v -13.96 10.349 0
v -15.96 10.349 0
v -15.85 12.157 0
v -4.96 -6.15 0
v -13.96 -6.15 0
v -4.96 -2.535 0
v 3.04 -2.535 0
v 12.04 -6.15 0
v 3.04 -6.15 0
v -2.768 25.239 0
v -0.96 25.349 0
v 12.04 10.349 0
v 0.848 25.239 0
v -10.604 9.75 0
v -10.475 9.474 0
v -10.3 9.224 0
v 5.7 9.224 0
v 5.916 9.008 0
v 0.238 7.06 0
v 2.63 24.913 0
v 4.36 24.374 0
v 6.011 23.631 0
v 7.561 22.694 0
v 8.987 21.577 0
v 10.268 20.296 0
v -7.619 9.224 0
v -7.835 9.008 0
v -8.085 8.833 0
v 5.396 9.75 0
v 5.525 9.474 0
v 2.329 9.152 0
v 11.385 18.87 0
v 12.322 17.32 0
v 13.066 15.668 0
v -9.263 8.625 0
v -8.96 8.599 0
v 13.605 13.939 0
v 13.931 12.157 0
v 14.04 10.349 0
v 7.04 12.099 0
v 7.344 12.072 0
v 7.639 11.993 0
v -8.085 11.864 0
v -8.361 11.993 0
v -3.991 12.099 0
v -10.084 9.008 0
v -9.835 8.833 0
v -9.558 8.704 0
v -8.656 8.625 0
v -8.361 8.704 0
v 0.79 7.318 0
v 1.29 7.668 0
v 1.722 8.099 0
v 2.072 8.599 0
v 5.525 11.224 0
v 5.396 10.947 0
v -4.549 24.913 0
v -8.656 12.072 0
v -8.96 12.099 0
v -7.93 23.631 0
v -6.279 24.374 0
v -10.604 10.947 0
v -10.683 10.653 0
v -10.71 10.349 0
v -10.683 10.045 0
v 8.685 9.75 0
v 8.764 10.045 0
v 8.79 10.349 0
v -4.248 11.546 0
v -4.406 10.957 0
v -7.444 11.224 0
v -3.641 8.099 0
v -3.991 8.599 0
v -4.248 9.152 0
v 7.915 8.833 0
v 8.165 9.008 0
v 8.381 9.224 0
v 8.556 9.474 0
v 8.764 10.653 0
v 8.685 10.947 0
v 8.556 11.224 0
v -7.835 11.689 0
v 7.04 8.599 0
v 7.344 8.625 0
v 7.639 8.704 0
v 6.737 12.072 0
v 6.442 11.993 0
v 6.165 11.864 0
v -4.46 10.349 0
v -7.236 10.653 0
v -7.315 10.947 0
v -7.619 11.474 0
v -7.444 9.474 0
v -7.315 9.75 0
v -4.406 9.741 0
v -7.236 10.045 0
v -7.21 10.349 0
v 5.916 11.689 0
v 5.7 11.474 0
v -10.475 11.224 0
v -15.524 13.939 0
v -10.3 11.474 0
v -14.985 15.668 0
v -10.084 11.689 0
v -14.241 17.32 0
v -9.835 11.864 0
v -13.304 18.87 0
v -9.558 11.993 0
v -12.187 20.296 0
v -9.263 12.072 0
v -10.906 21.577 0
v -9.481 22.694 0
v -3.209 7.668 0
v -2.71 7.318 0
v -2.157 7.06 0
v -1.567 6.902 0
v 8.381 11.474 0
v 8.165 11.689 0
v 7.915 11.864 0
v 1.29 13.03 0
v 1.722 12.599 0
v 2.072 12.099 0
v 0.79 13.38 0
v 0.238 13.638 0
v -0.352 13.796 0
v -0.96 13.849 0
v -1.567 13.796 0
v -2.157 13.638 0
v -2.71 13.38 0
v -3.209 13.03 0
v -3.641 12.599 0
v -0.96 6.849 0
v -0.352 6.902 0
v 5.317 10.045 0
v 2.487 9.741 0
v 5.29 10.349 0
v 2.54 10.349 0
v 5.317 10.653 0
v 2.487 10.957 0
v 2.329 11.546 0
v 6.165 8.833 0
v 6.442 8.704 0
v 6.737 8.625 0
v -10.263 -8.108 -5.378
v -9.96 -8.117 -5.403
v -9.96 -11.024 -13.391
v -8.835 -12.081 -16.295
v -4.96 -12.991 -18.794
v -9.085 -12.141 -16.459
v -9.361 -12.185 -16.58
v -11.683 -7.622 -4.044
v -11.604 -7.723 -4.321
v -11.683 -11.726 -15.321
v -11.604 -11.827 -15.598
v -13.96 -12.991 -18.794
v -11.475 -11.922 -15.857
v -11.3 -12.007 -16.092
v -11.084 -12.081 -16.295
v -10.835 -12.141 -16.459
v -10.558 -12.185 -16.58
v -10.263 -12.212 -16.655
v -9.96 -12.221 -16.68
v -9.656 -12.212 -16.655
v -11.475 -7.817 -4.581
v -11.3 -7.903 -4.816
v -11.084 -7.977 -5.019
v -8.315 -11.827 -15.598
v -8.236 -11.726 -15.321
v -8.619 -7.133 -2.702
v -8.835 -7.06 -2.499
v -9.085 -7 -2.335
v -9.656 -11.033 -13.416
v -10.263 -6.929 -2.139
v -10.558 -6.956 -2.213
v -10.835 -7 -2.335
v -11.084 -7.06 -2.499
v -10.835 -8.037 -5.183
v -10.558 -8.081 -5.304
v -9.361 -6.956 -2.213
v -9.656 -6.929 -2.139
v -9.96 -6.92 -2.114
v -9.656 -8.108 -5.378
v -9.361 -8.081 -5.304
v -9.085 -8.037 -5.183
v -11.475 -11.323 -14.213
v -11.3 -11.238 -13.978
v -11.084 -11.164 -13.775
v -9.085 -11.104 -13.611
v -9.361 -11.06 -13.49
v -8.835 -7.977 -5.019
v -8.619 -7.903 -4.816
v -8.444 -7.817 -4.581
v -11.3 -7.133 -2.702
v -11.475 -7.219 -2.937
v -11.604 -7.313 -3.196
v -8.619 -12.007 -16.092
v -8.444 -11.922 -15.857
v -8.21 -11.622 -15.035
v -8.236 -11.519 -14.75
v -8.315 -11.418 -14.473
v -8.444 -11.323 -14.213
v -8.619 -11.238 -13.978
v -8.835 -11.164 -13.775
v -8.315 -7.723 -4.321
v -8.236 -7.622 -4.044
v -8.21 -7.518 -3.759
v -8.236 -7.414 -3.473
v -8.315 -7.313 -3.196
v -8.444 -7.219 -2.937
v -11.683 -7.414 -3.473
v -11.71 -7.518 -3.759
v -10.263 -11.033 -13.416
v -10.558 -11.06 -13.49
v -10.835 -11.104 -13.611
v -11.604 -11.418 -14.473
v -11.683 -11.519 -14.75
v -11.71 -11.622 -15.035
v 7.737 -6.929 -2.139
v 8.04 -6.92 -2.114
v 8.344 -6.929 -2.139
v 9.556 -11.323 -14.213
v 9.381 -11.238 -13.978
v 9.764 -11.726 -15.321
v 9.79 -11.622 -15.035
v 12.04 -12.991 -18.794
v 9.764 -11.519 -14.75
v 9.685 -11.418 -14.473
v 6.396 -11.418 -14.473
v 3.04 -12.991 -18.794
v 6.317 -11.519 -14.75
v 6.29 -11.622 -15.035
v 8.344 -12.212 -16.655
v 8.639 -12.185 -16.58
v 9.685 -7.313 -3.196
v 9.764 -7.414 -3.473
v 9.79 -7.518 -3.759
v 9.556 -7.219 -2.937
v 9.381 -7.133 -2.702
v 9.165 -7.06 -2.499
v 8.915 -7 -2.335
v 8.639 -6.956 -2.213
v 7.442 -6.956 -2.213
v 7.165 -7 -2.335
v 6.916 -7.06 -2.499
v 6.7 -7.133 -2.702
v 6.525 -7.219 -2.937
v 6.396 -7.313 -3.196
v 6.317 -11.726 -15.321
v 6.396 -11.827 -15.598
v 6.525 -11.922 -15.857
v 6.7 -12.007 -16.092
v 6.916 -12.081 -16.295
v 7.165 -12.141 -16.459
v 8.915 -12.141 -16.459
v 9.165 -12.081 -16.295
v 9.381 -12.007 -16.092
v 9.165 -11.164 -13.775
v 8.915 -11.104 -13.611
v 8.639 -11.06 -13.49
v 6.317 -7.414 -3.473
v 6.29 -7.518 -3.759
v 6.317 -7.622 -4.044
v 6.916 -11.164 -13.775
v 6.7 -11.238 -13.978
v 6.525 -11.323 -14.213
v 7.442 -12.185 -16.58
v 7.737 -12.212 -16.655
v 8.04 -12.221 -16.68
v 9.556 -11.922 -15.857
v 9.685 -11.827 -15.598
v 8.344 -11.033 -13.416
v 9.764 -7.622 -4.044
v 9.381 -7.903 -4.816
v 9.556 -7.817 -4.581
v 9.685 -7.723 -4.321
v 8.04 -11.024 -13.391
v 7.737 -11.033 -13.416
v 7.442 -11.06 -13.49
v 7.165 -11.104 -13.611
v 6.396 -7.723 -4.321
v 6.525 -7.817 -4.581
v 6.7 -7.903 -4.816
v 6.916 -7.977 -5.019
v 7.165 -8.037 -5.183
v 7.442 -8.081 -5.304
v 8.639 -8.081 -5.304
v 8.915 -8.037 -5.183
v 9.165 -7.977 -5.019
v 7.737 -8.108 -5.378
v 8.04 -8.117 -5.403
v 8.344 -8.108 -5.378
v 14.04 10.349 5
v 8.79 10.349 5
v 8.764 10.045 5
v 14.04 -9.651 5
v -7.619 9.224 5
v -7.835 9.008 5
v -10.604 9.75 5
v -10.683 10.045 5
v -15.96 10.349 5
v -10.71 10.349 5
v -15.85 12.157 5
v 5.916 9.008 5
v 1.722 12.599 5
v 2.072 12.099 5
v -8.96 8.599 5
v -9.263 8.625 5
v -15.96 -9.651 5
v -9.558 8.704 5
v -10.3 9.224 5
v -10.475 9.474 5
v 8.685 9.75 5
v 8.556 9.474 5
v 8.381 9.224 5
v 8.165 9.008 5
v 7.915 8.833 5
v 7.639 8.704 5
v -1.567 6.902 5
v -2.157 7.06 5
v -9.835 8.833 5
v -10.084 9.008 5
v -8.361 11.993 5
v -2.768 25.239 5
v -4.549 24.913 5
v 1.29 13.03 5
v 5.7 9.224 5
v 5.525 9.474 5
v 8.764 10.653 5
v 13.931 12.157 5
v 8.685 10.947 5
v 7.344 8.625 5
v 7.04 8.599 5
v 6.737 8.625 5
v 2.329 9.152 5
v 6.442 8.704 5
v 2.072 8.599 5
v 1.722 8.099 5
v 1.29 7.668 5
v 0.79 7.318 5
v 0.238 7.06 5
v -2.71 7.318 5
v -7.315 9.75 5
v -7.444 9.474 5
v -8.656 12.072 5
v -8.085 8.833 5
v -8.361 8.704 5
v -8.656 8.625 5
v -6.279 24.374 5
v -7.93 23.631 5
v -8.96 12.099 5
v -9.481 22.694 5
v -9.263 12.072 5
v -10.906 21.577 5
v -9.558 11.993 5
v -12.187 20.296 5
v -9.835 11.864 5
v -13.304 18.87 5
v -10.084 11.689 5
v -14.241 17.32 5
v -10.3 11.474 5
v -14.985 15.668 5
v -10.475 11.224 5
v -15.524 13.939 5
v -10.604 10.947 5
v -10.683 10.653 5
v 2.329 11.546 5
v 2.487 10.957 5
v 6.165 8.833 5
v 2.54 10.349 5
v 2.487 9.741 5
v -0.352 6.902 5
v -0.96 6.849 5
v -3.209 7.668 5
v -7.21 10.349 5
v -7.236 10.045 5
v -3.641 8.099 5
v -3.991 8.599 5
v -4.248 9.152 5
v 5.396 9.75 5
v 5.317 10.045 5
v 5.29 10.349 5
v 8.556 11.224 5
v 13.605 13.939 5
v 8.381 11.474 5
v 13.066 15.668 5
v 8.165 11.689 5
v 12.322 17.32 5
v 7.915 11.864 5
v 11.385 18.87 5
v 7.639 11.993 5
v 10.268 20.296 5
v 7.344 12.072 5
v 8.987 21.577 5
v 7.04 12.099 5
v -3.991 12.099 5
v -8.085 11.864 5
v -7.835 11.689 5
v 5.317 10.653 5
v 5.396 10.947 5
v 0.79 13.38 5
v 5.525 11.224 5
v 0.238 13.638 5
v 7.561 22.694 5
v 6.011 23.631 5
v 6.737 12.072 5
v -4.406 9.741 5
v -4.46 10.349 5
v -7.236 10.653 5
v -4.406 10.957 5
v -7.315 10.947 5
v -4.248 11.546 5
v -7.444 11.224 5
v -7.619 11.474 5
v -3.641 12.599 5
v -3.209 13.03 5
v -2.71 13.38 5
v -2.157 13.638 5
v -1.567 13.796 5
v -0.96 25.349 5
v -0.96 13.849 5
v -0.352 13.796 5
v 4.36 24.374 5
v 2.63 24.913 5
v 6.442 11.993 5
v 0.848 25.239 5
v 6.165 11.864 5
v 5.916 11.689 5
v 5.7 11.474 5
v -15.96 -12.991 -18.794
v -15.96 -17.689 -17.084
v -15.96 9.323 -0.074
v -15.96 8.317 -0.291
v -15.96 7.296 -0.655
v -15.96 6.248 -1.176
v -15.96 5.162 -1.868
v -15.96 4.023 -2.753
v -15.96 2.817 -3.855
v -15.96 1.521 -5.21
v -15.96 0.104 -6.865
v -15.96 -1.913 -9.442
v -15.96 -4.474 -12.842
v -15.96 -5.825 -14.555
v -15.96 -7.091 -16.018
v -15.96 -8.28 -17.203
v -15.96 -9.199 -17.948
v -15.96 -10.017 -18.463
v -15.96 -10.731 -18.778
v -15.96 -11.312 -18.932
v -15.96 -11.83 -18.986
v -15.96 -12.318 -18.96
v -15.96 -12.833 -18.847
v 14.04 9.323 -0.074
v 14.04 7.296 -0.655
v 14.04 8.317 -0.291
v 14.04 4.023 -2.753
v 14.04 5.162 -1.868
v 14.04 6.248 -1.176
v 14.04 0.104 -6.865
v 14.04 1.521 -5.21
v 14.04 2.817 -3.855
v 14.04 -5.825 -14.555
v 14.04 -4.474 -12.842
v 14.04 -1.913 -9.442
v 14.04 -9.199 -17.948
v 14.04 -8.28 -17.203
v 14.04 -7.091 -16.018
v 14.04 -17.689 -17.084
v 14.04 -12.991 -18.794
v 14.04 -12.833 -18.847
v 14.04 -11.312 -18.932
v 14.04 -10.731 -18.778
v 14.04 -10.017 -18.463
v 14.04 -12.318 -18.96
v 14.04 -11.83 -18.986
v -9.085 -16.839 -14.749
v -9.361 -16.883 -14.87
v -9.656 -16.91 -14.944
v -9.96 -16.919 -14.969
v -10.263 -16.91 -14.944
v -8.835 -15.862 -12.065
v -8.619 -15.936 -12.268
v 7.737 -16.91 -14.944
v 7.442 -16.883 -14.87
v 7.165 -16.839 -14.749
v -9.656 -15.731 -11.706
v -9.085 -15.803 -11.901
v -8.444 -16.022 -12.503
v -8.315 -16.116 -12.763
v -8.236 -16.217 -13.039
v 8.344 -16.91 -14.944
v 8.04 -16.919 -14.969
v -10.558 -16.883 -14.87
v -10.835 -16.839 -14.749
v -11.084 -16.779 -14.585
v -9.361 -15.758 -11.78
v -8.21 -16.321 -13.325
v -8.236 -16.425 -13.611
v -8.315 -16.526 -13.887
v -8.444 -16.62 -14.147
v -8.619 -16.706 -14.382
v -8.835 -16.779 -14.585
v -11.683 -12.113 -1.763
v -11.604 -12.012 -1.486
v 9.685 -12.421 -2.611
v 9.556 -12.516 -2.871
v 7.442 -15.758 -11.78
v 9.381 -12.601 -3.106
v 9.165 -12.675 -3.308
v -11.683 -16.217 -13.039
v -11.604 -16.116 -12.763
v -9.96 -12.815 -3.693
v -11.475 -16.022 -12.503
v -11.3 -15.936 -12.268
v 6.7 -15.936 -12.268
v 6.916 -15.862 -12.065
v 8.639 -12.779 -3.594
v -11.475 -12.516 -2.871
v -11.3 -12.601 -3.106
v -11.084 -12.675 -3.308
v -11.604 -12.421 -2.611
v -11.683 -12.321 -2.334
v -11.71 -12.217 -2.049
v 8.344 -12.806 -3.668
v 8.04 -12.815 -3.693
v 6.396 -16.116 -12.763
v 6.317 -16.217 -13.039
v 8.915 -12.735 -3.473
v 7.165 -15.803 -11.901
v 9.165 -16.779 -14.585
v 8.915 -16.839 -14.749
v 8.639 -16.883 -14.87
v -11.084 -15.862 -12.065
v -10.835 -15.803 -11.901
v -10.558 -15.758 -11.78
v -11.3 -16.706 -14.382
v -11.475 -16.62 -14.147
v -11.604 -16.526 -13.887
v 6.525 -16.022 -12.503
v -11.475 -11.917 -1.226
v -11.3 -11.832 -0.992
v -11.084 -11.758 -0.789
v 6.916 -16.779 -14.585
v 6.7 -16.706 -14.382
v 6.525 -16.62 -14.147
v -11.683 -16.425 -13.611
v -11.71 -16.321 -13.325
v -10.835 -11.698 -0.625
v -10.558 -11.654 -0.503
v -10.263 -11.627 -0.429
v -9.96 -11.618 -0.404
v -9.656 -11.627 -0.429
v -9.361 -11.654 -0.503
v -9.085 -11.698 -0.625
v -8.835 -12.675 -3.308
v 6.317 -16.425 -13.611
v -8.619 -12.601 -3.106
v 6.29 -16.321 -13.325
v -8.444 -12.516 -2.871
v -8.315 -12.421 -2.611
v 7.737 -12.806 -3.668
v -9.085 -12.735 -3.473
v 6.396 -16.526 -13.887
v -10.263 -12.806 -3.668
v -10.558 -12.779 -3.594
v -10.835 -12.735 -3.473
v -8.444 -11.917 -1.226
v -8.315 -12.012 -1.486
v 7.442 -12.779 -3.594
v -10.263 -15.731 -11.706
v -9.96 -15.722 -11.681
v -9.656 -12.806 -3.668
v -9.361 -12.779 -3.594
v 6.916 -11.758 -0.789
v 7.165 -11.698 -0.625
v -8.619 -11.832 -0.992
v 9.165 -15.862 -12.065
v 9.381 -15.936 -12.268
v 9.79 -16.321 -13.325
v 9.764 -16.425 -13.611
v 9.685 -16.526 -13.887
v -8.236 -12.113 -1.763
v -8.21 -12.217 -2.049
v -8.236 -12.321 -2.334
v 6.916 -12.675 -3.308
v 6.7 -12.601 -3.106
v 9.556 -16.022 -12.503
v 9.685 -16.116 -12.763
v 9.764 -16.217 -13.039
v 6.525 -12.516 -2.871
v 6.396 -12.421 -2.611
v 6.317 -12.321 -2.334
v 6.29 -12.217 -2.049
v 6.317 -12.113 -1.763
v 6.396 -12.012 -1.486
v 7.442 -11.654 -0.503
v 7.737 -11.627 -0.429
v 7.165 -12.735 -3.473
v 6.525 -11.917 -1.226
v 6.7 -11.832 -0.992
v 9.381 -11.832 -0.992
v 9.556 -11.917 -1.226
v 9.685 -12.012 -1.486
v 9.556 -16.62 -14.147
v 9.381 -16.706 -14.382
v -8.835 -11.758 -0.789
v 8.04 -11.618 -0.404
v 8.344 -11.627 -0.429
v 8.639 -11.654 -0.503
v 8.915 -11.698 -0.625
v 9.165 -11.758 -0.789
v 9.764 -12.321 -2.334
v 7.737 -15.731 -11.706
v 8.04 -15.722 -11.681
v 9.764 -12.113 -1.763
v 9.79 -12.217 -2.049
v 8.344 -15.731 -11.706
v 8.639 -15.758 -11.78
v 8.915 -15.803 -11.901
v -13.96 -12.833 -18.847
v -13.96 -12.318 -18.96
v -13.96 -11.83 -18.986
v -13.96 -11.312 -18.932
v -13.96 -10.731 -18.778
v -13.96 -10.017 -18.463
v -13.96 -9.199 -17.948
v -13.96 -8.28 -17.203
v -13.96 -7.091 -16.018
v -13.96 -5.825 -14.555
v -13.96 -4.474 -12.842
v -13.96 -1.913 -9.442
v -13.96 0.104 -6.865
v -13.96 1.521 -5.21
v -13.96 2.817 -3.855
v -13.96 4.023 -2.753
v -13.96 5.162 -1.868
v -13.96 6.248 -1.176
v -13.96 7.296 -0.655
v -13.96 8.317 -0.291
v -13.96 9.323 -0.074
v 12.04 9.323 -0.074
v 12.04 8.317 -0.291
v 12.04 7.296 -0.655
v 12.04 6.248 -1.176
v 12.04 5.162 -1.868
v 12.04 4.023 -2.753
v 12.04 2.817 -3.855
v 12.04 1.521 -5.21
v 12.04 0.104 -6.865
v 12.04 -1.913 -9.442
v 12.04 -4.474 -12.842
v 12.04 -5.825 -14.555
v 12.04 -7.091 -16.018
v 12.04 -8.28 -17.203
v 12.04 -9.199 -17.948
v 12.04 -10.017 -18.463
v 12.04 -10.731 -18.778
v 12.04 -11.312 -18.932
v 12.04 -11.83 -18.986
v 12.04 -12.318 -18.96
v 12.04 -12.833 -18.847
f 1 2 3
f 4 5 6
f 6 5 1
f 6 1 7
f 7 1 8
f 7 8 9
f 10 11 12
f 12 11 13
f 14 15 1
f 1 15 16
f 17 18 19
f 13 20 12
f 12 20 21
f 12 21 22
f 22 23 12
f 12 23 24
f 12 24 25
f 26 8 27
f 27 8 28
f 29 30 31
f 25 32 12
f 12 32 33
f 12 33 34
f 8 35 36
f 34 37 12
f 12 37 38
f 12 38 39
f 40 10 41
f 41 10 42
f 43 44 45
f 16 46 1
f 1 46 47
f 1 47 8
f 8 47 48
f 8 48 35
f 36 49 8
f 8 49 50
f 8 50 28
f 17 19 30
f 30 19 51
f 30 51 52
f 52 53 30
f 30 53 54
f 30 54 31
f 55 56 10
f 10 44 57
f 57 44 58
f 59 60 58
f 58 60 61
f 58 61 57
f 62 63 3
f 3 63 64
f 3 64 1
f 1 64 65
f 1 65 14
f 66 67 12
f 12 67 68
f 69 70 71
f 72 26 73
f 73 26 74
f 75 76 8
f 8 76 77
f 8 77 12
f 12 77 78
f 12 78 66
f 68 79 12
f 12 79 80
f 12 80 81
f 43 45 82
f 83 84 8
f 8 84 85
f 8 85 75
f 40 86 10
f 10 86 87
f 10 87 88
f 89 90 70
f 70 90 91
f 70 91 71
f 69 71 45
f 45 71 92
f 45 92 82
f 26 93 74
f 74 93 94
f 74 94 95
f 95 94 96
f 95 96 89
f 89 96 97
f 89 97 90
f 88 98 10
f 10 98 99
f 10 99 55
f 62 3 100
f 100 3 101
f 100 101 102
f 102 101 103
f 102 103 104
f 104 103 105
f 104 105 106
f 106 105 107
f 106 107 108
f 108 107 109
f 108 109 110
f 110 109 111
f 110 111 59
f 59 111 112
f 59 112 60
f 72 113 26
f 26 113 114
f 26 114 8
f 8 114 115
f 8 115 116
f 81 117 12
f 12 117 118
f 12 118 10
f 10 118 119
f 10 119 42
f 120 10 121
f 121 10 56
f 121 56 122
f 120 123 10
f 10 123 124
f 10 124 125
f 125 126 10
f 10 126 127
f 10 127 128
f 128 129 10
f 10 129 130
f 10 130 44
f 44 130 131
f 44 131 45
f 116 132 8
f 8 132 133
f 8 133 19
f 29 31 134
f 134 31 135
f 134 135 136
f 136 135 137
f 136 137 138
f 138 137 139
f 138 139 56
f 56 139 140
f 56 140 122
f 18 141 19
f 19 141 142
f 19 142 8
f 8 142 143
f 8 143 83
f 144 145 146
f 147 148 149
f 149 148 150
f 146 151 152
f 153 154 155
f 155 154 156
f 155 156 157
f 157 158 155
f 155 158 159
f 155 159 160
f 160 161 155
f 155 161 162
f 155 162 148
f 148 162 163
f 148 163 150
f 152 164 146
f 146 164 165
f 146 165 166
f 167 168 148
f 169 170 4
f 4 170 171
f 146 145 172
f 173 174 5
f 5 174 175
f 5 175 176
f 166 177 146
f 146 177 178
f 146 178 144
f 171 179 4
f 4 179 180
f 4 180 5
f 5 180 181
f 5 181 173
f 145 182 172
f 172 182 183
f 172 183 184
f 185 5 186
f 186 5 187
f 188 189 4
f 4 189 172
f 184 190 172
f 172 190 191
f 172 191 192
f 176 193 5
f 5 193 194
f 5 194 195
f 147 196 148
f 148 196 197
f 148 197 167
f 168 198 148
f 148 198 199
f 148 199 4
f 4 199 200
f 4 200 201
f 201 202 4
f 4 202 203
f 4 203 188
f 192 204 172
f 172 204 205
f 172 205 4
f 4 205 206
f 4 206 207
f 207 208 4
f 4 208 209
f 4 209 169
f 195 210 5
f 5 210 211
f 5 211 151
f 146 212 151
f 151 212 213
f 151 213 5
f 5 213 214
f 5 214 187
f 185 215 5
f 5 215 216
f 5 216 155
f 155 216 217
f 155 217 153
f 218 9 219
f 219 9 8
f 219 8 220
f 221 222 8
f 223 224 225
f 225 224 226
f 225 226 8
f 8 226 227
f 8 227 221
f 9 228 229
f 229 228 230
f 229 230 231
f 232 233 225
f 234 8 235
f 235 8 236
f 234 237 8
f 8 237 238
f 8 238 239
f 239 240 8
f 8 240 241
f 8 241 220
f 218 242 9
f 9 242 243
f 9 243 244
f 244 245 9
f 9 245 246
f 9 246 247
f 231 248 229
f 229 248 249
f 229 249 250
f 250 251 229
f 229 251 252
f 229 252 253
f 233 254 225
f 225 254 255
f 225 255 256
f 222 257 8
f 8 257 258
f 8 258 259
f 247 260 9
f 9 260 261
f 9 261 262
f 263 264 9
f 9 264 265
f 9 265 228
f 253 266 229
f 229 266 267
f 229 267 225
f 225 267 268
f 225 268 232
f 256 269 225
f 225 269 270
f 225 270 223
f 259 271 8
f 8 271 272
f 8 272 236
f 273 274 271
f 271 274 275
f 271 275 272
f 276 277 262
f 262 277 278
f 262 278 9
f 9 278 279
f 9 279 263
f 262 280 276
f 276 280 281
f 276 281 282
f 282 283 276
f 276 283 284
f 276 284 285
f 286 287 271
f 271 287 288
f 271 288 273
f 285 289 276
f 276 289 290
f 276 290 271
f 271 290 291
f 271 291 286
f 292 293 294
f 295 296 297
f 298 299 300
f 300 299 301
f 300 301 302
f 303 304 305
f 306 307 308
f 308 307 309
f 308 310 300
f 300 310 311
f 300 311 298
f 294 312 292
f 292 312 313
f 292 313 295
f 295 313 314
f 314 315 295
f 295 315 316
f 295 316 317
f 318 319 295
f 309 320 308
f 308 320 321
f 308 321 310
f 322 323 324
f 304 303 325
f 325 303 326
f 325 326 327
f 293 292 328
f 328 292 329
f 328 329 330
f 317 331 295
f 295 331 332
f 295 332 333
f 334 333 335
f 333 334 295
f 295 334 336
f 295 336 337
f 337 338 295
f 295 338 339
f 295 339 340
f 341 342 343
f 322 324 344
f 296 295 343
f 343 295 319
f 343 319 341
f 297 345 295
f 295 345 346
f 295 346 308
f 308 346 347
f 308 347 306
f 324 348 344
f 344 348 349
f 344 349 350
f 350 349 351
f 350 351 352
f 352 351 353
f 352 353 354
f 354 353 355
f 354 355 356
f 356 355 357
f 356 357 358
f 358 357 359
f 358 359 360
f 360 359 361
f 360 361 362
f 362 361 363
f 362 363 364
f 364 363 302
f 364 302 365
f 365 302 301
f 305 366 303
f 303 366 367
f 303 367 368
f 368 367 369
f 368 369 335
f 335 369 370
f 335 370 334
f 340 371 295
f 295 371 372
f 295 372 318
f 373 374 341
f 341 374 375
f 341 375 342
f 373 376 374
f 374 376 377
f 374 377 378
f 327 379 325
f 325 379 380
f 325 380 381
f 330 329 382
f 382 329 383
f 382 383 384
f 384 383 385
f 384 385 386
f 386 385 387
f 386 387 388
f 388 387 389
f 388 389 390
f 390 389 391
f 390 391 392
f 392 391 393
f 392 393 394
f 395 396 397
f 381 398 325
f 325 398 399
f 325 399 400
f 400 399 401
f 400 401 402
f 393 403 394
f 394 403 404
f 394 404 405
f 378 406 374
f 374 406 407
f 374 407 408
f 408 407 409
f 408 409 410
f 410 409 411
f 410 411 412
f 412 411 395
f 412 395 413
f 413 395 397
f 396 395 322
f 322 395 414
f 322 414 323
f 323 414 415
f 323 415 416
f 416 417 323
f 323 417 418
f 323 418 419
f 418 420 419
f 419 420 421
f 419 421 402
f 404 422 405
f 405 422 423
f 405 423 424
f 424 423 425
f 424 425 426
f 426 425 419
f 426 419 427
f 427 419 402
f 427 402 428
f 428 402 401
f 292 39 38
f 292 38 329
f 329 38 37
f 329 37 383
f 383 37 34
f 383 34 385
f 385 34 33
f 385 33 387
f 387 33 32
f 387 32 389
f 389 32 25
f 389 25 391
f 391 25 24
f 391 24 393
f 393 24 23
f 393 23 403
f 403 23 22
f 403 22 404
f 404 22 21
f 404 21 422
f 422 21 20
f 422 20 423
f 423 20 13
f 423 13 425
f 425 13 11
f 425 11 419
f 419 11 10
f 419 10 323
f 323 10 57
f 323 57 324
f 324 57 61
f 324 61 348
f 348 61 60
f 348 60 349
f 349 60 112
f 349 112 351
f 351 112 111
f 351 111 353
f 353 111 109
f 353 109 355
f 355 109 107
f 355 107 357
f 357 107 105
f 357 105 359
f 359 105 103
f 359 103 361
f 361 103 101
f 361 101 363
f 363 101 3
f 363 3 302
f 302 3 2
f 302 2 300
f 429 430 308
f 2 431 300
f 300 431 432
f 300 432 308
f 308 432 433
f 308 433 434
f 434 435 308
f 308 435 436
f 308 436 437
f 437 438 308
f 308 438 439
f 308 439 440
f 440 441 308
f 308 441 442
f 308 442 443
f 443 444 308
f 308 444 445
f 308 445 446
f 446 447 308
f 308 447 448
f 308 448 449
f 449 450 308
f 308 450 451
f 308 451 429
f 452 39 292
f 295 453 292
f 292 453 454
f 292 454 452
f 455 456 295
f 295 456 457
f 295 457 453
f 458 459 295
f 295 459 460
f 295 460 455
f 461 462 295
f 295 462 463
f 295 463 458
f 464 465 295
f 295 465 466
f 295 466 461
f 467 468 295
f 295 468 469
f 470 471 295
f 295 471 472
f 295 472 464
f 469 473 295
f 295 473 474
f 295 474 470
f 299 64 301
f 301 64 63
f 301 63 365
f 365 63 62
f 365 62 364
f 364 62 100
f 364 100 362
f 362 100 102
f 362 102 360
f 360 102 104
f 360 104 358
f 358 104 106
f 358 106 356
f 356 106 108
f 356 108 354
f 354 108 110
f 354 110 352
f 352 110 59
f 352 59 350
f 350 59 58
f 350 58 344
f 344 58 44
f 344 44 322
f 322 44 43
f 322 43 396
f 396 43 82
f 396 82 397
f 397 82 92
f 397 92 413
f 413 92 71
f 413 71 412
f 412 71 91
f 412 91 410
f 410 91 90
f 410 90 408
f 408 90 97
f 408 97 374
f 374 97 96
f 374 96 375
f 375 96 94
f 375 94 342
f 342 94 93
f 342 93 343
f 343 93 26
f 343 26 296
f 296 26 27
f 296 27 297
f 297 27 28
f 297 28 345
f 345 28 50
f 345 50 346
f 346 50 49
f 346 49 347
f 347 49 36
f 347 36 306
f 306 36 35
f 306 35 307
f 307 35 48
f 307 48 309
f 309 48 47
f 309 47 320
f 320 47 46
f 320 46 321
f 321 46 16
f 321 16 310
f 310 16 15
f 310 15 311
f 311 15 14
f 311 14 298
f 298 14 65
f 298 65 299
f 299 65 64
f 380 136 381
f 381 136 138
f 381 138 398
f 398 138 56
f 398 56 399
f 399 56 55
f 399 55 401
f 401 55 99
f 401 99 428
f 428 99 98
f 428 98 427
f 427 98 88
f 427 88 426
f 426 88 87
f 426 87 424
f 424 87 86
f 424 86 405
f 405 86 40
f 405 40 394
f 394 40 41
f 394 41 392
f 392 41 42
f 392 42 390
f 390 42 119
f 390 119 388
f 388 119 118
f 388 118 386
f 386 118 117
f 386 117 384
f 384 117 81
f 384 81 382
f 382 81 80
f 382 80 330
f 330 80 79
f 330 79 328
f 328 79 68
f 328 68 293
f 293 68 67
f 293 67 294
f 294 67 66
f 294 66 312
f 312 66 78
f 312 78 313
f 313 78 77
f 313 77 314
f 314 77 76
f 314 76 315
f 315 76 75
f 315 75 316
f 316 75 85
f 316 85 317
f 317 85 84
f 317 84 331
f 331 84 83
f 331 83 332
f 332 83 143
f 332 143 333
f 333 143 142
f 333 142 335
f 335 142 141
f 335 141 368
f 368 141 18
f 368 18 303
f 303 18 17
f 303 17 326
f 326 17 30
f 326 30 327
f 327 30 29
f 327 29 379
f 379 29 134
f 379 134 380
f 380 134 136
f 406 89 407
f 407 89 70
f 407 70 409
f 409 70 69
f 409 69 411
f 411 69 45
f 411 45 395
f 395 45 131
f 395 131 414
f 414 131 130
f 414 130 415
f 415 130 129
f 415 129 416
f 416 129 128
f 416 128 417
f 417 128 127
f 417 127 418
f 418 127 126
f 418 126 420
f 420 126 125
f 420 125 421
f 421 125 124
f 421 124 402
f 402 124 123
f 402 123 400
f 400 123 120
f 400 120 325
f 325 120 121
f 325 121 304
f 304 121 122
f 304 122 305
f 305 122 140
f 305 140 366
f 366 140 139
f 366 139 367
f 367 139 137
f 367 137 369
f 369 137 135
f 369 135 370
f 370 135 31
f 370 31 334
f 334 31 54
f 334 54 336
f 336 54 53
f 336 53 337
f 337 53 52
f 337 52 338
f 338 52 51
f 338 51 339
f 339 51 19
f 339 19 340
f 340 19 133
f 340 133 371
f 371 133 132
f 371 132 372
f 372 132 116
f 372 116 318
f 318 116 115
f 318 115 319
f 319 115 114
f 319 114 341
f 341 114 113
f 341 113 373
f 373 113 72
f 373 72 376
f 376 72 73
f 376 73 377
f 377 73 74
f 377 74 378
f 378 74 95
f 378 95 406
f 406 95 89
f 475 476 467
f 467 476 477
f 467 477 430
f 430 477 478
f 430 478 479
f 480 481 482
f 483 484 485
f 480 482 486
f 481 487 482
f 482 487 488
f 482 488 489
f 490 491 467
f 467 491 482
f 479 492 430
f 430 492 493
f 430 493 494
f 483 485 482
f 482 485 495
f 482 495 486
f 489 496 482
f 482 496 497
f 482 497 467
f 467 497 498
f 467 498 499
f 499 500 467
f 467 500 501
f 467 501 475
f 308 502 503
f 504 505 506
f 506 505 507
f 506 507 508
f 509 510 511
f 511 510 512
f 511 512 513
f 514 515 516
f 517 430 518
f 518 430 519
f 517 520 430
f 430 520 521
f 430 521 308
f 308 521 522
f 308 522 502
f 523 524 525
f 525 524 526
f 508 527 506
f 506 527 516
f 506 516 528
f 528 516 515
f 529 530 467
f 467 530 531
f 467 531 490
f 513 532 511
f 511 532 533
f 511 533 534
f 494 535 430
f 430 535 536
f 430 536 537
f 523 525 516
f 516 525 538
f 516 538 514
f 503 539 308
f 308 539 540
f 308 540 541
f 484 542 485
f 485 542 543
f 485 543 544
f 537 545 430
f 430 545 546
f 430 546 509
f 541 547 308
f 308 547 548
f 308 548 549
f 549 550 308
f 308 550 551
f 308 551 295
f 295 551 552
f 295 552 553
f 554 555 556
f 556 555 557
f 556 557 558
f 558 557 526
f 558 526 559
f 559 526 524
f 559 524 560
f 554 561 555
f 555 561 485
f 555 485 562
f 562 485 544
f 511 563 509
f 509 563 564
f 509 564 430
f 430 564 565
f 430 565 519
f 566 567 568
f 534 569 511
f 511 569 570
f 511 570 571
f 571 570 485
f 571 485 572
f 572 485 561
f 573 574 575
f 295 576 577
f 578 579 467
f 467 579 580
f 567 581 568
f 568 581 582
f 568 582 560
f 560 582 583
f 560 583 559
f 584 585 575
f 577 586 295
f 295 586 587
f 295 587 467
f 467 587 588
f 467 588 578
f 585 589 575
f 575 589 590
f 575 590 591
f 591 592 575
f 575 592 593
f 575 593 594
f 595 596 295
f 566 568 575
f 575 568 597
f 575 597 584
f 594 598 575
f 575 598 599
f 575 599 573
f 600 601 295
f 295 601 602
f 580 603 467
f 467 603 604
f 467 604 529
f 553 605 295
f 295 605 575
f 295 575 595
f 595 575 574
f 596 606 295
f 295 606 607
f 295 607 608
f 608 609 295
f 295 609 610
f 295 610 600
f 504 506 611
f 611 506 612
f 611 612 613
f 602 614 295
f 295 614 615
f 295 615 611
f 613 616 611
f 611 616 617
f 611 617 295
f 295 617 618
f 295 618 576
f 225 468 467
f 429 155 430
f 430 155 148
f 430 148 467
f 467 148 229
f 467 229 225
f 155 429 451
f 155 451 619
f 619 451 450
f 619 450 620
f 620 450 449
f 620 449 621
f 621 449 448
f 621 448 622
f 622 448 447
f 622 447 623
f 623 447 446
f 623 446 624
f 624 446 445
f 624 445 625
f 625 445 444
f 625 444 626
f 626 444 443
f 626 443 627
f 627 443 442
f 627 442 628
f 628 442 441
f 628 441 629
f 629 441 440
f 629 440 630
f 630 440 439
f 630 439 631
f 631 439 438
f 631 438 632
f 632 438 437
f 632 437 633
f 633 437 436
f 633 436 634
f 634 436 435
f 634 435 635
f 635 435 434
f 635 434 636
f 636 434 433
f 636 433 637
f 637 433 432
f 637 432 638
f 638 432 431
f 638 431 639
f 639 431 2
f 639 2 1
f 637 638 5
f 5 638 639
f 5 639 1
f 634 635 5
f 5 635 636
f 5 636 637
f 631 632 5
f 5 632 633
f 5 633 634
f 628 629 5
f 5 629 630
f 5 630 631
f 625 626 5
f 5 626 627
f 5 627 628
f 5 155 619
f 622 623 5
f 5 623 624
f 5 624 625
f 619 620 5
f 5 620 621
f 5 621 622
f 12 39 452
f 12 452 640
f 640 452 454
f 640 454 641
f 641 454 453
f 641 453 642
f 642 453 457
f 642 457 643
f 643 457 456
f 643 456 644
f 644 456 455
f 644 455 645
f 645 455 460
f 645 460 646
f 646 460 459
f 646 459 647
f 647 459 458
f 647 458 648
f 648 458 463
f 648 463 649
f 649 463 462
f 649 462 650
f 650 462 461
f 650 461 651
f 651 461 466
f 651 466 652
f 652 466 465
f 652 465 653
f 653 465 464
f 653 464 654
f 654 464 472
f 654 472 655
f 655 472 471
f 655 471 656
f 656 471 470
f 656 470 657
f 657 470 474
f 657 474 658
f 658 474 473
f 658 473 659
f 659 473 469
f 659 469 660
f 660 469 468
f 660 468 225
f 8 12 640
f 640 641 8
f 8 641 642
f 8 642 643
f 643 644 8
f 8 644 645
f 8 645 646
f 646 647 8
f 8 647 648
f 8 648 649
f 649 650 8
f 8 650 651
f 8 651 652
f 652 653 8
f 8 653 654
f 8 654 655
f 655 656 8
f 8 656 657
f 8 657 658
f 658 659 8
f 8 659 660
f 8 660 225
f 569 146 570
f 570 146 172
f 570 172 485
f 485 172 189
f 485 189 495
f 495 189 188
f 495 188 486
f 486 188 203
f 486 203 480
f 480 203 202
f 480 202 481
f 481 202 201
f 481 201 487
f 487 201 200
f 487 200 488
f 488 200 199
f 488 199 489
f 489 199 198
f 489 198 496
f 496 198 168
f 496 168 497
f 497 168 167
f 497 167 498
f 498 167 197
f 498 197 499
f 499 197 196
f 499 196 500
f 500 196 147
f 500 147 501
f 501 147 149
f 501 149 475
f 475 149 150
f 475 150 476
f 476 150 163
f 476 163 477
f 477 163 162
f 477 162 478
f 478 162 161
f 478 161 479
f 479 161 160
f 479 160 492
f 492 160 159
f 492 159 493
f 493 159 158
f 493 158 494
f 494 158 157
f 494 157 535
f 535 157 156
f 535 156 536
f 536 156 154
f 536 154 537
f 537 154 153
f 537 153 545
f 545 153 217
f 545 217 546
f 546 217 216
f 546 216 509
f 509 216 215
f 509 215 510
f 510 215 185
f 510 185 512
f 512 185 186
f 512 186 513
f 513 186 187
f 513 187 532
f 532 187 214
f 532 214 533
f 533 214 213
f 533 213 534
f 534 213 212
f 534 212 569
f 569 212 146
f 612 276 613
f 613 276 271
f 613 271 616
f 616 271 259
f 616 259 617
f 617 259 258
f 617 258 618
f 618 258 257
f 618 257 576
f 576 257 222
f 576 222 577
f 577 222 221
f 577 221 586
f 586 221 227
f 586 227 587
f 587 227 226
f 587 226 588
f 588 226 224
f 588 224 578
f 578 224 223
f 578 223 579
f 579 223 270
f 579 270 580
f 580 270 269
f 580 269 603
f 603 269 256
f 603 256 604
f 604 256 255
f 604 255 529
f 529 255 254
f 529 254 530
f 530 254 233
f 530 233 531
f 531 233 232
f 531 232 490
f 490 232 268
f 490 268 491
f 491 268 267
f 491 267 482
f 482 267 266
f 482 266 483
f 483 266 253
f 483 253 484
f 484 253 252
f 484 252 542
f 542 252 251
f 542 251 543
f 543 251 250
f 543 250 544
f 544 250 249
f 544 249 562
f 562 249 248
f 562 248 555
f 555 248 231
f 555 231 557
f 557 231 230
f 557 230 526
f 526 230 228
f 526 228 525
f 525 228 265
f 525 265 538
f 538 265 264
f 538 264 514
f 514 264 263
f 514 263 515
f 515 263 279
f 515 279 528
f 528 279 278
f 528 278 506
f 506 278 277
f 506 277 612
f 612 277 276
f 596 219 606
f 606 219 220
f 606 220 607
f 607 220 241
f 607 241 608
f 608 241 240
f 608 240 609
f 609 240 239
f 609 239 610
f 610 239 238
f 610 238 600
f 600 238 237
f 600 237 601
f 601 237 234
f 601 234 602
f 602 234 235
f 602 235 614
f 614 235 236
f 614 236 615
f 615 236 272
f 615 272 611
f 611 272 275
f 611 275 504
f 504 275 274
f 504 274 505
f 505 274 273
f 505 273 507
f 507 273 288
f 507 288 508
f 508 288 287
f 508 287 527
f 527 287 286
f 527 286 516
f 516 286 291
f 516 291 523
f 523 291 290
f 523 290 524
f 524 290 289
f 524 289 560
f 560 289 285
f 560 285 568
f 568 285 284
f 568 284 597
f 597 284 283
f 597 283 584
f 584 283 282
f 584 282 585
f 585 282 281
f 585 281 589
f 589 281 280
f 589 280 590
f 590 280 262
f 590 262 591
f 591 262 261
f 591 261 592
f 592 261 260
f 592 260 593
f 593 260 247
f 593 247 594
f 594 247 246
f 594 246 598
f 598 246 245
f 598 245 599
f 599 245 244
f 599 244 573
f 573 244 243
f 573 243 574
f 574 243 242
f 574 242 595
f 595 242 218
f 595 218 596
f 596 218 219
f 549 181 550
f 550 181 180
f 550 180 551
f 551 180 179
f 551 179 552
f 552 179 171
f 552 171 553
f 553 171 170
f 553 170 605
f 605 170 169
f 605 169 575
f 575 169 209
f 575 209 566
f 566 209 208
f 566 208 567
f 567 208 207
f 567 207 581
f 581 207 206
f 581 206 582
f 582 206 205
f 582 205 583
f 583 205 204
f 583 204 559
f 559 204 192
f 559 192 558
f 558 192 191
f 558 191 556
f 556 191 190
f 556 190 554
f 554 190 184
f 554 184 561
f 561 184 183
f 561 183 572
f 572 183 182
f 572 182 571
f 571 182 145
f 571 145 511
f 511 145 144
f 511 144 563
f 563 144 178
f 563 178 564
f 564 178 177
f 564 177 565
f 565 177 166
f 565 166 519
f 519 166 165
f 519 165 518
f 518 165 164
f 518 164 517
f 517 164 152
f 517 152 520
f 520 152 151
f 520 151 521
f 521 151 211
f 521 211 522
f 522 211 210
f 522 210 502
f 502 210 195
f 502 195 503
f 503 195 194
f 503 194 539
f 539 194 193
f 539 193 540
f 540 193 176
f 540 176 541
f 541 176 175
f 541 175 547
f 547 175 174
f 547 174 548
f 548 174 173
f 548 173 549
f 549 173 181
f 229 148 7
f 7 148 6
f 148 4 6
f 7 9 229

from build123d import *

# Parameters (mm, degrees)
ESQUISSE1_R             = 1.75
ESQUISSE1_R_2           = 3.5
BOSS_EXTRU_1_DEPTH      = 5
ENL_V_MAT_EXTRU_2_REACH = 41.592
BOSS_EXTRU_2_DEPTH      = 30
ESQUISSE5_W             = 30
ESQUISSE5_H             = 5
BOSS_EXTRU_3_DEPTH      = 20
BOSS_EXTRU_4_DEPTH      = 2
BOSS_EXTRU_5_DEPTH      = 2
ENL_V_MAT_EXTRU_3_REACH = 42.516
ESQUISSE12_R            = 1.75
BOSS_EXTRU_6_DEPTH      = 4
BOSS_EXTRU_6_DEPTH_BACK = 4


with BuildPart() as part:
    # Esquisse1 → Boss.-Extru.1 (new body)
    with BuildSketch(Plane.XY):
        with BuildLine():
            Line((-15.959557324, 10.348837209), (-15.959557324, -9.651162791))
            Line((-15.959557324, -9.651162791), (14.040442676, -9.651162791))
            Line((14.040442676, -9.651162791), (14.040442676, 10.348837209))
            ThreePointArc((14.040442676, 10.348837209), (-0.959557324, 25.348837209), (-15.959557324, 10.348837209))
        make_face()
        with Locations((-8.959557324, 10.348837209)):
            Circle(ESQUISSE1_R, mode=Mode.SUBTRACT)
        with Locations((7.040442676, 10.348837209)):
            Circle(ESQUISSE1_R, mode=Mode.SUBTRACT)
        with Locations((-0.959557324, 10.348837209)):
            Circle(ESQUISSE1_R_2, mode=Mode.SUBTRACT)
    extrude(amount=BOSS_EXTRU_1_DEPTH)

    # Esquisse2 → Enlèv. mat.-Extru.2 (cut, up to next)
    with BuildSketch(Plane.ZY.offset(15.959557324), mode=Mode.PRIVATE) as enl_v_mat_extru_2_sk1:
        Polygon((0, -9.651162791), (0, -6.1501251), (1.274273509, -9.651162791), align=None)
    enl_v_mat_extru_2_tool1 = extrude(enl_v_mat_extru_2_sk1.sketch, amount=-ENL_V_MAT_EXTRU_2_REACH, mode=Mode.PRIVATE) & part.part
    add(enl_v_mat_extru_2_tool1.solids().sort_by_distance((-15.959557, -8.48415, 0.424758))[0], mode=Mode.SUBTRACT)

    # Esquisse4 → Boss.-Extru.2 (add)
    with BuildSketch(Plane.ZY.offset(15.959557324)):
        Polygon((5, -9.651162791), (1.710100717, -10.848588204), (1.274273509, -9.651162791), align=None)
    extrude(amount=-BOSS_EXTRU_2_DEPTH)

    # Esquisse5 → Boss.-Extru.3 (add)
    with BuildSketch(Plane(origin=(0, -0.719427971, -1.976612106), x_dir=(-1, 0, 0), z_dir=(0, -0.34202014332566333, -0.9396926207859103))):
        with Locations((0.959557324, -8.279227173)):
            Rectangle(ESQUISSE5_W, ESQUISSE5_H)
    extrude(amount=BOSS_EXTRU_3_DEPTH)

    # Esquisse6 → Boss.-Extru.4 (add)
    with BuildSketch(Plane.ZY.offset(15.959557324)):
        with BuildLine():
            Line((0, 10.348837209), (0, -6.1501251))
            Line((0, -6.1501251), (-18.793852416, -12.990527966))
            add(Edge.make_bspline(
                [(0, 10.348837209), (0, 0.360316824), (-21.221447274, -6.32076591), (-18.793852416, -12.990527966)],
                knots=[0, 0, 0, 0, 1, 1, 1, 1], degree=3))
        make_face()
    extrude(amount=-BOSS_EXTRU_4_DEPTH)

    # Esquisse11 → Boss.-Extru.5 (add)
    with BuildSketch(Plane.ZY.offset(-14.040442676)):
        with BuildLine():
            Line((0, 10.348837209), (0, -6.1501251))
            Line((0, -6.1501251), (-18.793852416, -12.990527966))
            add(Edge.make_bspline(
                [(0, 10.348837209), (0, 0.360316824), (-21.221447274, -6.32076591), (-18.793852416, -12.990527966)],
                knots=[0, 0, 0, 0, 1, 1, 1, 1], degree=3))
        make_face()
    extrude(amount=BOSS_EXTRU_5_DEPTH)

    # Esquisse12 → Enlèv. mat.-Extru.3 (cut, up to next)
    with BuildSketch(Plane(origin=(0, -5.430697128, 1.976612106), x_dir=(1, 0, 0), z_dir=(0, 0.9396926207859103, -0.34202014332566333)), mode=Mode.PRIVATE) as enl_v_mat_extru_3_sk1:
        with Locations(Location((-9.959557324, 18.103466668, 0), (0, 0, 270))):
            Circle(ESQUISSE12_R)
    enl_v_mat_extru_3_tool1 = extrude(enl_v_mat_extru_3_sk1.sketch, amount=-ENL_V_MAT_EXTRU_3_REACH, mode=Mode.PRIVATE) & part.part
    # Esquisse12 → Enlèv. mat.-Extru.3 (cut, up to next)
    with BuildSketch(Plane(origin=(0, -5.430697128, 1.976612106), x_dir=(1, 0, 0), z_dir=(0, 0.9396926207859103, -0.34202014332566333)), mode=Mode.PRIVATE) as enl_v_mat_extru_3_sk2:
        with Locations(Location((8.040442676, 18.103466668, 0), (0, 0, 270))):
            Circle(ESQUISSE12_R)
    enl_v_mat_extru_3_tool2 = extrude(enl_v_mat_extru_3_sk2.sketch, amount=-ENL_V_MAT_EXTRU_3_REACH, mode=Mode.PRIVATE) & part.part
    # Esquisse12 → Enlèv. mat.-Extru.3 (cut, up to next)
    with BuildSketch(Plane(origin=(0, -5.430697128, 1.976612106), x_dir=(1, 0, 0), z_dir=(0, 0.9396926207859103, -0.34202014332566333)), mode=Mode.PRIVATE) as enl_v_mat_extru_3_sk3:
        with Locations(Location((8.040442676, 6.103466668, 0), (0, 0, 270))):
            Circle(ESQUISSE12_R)
    enl_v_mat_extru_3_tool3 = extrude(enl_v_mat_extru_3_sk3.sketch, amount=-ENL_V_MAT_EXTRU_3_REACH, mode=Mode.PRIVATE) & part.part
    # Esquisse12 → Enlèv. mat.-Extru.3 (cut, up to next)
    with BuildSketch(Plane(origin=(0, -5.430697128, 1.976612106), x_dir=(1, 0, 0), z_dir=(0, 0.9396926207859103, -0.34202014332566333)), mode=Mode.PRIVATE) as enl_v_mat_extru_3_sk4:
        with Locations(Location((-9.959557324, 6.103466668, 0), (0, 0, 270))):
            Circle(ESQUISSE12_R)
    enl_v_mat_extru_3_tool4 = extrude(enl_v_mat_extru_3_sk4.sketch, amount=-ENL_V_MAT_EXTRU_3_REACH, mode=Mode.PRIVATE) & part.part
    add(enl_v_mat_extru_3_tool1.solids().sort_by_distance((-9.959557, -11.622447, -15.035082))[0], mode=Mode.SUBTRACT)
    add(enl_v_mat_extru_3_tool2.solids().sort_by_distance((8.040443, -11.622447, -15.035082))[0], mode=Mode.SUBTRACT)
    add(enl_v_mat_extru_3_tool3.solids().sort_by_distance((8.040443, -7.518206, -3.75877))[0], mode=Mode.SUBTRACT)
    add(enl_v_mat_extru_3_tool4.solids().sort_by_distance((-9.959557, -7.518206, -3.75877))[0], mode=Mode.SUBTRACT)

    # Esquisse16 → Boss.-Extru.6 (add, two sides: drawn at the far end of the back side and taken through both)
    with BuildSketch(Plane(origin=(-0.959557324, 0, 0), x_dir=(0, 0, -1), z_dir=(1, 0, 0)).offset(-BOSS_EXTRU_6_DEPTH_BACK)):
        Polygon((18.793852416, -12.990527966), (0, -6.1501251), (0, -2.534631071), align=None)
    extrude(amount=BOSS_EXTRU_6_DEPTH + BOSS_EXTRU_6_DEPTH_BACK)


solid = part.part
